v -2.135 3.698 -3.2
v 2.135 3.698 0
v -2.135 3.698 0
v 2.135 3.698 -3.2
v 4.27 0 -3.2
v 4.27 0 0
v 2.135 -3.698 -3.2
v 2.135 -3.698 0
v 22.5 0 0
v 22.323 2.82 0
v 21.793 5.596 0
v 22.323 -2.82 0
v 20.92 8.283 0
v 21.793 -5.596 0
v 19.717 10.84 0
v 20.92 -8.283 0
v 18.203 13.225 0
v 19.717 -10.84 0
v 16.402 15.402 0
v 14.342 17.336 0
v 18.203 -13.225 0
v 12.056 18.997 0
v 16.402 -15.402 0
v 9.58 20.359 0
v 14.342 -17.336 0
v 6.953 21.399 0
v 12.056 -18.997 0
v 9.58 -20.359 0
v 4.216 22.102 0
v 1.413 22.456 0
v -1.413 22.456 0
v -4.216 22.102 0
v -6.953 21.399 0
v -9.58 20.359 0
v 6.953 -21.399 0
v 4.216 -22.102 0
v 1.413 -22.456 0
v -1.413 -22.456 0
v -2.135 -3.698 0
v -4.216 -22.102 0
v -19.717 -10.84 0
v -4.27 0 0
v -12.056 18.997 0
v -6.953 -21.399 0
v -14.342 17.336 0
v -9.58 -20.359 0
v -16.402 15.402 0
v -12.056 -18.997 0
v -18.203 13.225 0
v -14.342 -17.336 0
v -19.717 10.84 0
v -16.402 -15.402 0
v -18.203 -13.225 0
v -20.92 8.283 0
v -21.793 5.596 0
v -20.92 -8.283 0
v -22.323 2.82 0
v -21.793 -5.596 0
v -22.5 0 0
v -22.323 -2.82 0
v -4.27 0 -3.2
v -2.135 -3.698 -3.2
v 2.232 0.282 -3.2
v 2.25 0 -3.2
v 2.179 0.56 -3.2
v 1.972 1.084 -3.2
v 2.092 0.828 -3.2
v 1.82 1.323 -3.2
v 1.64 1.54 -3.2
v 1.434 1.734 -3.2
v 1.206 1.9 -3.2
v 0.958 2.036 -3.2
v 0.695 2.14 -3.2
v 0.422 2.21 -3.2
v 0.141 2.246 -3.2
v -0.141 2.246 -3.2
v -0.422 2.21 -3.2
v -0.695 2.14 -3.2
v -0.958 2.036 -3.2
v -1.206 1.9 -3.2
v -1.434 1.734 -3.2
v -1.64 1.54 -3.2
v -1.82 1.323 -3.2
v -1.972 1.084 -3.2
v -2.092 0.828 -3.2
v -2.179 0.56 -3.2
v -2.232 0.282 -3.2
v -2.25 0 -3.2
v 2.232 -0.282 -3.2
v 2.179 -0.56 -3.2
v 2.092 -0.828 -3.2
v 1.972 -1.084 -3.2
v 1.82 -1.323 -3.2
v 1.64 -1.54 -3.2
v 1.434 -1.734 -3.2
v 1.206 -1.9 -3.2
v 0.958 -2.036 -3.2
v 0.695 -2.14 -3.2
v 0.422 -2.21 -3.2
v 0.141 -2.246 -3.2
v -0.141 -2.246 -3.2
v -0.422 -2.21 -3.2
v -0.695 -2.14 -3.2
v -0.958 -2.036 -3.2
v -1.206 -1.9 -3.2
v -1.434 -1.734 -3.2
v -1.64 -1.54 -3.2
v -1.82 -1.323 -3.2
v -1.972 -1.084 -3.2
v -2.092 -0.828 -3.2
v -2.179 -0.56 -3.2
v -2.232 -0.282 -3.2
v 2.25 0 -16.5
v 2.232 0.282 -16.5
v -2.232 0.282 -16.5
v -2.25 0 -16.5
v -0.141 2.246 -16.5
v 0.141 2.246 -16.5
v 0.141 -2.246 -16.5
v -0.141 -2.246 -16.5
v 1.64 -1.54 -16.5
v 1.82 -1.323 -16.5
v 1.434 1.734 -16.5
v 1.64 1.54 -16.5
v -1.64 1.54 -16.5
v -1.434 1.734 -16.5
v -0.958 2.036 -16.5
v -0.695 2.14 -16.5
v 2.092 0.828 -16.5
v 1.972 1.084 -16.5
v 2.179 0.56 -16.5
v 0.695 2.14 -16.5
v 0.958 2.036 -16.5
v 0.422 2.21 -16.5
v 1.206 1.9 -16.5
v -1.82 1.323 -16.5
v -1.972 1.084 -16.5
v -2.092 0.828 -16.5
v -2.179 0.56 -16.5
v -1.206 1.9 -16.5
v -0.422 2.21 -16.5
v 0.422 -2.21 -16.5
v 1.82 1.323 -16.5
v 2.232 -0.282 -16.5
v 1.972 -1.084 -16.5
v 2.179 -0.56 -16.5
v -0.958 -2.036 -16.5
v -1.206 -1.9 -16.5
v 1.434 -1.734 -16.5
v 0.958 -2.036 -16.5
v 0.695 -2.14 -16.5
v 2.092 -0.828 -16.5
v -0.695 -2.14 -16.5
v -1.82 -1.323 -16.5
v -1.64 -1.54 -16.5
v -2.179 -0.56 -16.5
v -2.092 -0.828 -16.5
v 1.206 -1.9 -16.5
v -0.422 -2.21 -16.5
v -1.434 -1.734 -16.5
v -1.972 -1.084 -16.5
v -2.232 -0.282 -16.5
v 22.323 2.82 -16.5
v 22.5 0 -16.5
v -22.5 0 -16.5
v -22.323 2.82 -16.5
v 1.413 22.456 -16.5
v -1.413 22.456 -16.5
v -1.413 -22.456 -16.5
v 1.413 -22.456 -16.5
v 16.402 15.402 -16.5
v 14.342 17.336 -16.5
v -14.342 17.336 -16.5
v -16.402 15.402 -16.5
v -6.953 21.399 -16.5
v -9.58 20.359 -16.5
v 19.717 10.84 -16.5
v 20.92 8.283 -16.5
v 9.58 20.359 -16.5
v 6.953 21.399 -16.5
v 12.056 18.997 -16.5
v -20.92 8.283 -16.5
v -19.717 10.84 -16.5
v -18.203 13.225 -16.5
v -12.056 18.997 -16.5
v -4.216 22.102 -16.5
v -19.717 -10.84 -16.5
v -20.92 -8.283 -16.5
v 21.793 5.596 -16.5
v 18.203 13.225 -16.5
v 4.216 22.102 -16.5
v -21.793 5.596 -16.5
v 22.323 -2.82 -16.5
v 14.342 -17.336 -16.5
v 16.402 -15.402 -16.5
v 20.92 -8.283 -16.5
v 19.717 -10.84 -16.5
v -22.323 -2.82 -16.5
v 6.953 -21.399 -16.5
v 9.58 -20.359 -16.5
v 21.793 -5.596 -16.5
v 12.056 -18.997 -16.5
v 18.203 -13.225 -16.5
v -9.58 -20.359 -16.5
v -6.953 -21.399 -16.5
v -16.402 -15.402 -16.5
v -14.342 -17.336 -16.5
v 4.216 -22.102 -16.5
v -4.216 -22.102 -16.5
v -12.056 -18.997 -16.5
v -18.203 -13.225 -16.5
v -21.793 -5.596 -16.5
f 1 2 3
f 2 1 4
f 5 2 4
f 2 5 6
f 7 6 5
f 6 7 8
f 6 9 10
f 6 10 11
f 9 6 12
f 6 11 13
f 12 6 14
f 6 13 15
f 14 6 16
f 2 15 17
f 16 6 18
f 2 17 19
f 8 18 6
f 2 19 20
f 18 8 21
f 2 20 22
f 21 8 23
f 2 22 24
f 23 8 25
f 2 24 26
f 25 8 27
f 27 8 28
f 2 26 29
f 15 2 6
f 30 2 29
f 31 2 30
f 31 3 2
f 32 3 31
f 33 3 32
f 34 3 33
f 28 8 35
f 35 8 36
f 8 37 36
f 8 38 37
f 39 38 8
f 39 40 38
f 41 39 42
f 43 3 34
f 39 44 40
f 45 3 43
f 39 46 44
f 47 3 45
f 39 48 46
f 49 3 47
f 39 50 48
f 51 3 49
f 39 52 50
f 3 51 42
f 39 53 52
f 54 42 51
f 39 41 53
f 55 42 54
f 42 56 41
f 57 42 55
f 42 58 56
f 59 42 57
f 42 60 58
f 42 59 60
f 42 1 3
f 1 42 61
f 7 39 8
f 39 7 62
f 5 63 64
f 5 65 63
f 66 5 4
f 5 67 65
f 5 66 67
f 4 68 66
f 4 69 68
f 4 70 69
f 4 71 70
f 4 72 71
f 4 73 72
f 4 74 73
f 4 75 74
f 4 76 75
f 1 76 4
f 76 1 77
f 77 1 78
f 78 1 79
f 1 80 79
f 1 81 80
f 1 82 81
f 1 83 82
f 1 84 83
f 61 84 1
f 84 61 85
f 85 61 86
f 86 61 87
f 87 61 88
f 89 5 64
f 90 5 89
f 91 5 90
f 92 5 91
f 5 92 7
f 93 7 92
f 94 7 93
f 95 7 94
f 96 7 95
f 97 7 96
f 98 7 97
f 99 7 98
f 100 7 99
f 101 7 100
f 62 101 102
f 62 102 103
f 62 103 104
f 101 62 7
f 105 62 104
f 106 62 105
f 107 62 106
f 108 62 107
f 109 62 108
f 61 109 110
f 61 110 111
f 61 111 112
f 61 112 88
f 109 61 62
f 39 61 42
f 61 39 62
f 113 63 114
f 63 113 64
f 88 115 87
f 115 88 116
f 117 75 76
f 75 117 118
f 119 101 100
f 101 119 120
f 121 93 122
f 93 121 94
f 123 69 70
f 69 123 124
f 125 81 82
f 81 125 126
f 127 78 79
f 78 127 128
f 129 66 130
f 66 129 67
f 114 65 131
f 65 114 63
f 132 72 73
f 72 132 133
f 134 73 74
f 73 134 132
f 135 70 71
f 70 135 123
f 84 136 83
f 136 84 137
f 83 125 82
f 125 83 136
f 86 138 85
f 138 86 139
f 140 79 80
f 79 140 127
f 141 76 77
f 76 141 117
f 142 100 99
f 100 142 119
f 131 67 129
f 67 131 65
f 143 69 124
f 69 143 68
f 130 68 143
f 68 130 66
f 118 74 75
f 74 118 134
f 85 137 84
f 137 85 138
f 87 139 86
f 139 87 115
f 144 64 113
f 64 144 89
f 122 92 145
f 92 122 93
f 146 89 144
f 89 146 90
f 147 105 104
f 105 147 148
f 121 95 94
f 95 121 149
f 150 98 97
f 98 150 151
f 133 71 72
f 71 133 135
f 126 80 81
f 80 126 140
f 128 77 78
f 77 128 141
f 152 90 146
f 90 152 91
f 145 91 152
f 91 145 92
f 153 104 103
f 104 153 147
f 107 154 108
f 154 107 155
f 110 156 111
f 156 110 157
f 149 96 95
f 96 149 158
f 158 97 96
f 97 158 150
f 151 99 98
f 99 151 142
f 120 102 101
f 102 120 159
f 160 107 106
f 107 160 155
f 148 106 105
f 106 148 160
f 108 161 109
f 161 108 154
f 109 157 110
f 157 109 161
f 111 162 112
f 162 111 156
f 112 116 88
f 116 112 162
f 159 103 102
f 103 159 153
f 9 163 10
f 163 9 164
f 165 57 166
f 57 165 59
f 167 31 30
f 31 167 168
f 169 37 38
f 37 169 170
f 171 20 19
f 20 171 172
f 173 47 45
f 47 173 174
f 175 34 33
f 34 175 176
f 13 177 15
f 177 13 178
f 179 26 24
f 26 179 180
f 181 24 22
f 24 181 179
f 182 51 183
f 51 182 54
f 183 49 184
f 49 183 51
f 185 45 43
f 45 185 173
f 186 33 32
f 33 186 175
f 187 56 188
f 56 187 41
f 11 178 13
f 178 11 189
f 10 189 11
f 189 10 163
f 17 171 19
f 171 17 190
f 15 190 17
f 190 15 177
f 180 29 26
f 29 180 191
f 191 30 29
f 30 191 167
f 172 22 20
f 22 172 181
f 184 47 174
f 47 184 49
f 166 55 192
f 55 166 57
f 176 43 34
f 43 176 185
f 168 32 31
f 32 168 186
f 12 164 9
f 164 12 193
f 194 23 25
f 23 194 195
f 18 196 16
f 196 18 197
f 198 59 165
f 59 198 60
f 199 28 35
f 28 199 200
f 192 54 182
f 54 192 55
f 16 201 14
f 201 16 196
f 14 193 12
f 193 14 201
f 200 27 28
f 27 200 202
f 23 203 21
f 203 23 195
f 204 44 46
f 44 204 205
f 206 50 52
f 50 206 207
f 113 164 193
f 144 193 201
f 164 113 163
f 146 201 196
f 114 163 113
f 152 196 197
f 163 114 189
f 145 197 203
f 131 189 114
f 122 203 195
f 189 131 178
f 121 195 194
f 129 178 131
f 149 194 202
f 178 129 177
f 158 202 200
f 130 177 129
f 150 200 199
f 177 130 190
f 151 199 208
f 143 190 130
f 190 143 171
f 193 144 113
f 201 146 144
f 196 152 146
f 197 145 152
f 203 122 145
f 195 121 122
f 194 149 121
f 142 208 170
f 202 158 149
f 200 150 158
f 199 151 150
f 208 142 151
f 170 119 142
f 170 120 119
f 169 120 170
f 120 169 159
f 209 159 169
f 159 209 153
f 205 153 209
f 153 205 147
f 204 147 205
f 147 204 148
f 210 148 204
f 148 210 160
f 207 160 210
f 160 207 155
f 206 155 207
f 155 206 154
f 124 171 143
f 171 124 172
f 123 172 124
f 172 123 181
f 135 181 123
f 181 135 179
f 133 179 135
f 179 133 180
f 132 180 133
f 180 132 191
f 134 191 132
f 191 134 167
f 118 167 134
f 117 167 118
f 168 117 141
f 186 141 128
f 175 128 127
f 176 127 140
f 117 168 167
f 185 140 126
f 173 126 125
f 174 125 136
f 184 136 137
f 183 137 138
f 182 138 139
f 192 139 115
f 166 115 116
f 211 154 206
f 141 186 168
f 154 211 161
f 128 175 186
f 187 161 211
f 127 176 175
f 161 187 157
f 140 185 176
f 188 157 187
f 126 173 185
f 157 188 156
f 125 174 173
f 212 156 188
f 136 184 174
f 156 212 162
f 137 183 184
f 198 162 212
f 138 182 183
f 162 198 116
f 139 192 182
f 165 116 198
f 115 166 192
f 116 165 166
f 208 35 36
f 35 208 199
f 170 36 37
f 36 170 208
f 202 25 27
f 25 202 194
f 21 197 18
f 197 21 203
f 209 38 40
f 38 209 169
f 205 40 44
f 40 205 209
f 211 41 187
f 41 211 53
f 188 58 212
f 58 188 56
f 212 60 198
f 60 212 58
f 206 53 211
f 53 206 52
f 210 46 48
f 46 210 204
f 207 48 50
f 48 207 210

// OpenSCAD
$fn = 50;

difference() {
	union() {
		translate(v = [0, 0, -16.5]) {
			cylinder(h = 16.5, r = 22.5);
		}
	}
	union() {
		translate(v = [0, 0, 0]) {
			rotate(a = [0, 0, 0]) {
				difference() {
					union() {
						translate(v = [0, 0, -3.2]) {
							linear_extrude(height = 3.2) {
								polygon(points = [[4.2698, 0.0], [2.1349000000000005, 3.697755269078796], [-2.134899999999999, 3.6977552690787965], [-4.2698, 5.228996902999369e-16], [-2.134900000000002, -3.6977552690787956], [2.1348999999999974, -3.697755269078798]]);
							}
						}
					}
					union();
				}
			}
		}
		#translate(v = [0, 0, -100.0]) {
			cylinder(h = 200, r = 2.25);
		}
	}
}
